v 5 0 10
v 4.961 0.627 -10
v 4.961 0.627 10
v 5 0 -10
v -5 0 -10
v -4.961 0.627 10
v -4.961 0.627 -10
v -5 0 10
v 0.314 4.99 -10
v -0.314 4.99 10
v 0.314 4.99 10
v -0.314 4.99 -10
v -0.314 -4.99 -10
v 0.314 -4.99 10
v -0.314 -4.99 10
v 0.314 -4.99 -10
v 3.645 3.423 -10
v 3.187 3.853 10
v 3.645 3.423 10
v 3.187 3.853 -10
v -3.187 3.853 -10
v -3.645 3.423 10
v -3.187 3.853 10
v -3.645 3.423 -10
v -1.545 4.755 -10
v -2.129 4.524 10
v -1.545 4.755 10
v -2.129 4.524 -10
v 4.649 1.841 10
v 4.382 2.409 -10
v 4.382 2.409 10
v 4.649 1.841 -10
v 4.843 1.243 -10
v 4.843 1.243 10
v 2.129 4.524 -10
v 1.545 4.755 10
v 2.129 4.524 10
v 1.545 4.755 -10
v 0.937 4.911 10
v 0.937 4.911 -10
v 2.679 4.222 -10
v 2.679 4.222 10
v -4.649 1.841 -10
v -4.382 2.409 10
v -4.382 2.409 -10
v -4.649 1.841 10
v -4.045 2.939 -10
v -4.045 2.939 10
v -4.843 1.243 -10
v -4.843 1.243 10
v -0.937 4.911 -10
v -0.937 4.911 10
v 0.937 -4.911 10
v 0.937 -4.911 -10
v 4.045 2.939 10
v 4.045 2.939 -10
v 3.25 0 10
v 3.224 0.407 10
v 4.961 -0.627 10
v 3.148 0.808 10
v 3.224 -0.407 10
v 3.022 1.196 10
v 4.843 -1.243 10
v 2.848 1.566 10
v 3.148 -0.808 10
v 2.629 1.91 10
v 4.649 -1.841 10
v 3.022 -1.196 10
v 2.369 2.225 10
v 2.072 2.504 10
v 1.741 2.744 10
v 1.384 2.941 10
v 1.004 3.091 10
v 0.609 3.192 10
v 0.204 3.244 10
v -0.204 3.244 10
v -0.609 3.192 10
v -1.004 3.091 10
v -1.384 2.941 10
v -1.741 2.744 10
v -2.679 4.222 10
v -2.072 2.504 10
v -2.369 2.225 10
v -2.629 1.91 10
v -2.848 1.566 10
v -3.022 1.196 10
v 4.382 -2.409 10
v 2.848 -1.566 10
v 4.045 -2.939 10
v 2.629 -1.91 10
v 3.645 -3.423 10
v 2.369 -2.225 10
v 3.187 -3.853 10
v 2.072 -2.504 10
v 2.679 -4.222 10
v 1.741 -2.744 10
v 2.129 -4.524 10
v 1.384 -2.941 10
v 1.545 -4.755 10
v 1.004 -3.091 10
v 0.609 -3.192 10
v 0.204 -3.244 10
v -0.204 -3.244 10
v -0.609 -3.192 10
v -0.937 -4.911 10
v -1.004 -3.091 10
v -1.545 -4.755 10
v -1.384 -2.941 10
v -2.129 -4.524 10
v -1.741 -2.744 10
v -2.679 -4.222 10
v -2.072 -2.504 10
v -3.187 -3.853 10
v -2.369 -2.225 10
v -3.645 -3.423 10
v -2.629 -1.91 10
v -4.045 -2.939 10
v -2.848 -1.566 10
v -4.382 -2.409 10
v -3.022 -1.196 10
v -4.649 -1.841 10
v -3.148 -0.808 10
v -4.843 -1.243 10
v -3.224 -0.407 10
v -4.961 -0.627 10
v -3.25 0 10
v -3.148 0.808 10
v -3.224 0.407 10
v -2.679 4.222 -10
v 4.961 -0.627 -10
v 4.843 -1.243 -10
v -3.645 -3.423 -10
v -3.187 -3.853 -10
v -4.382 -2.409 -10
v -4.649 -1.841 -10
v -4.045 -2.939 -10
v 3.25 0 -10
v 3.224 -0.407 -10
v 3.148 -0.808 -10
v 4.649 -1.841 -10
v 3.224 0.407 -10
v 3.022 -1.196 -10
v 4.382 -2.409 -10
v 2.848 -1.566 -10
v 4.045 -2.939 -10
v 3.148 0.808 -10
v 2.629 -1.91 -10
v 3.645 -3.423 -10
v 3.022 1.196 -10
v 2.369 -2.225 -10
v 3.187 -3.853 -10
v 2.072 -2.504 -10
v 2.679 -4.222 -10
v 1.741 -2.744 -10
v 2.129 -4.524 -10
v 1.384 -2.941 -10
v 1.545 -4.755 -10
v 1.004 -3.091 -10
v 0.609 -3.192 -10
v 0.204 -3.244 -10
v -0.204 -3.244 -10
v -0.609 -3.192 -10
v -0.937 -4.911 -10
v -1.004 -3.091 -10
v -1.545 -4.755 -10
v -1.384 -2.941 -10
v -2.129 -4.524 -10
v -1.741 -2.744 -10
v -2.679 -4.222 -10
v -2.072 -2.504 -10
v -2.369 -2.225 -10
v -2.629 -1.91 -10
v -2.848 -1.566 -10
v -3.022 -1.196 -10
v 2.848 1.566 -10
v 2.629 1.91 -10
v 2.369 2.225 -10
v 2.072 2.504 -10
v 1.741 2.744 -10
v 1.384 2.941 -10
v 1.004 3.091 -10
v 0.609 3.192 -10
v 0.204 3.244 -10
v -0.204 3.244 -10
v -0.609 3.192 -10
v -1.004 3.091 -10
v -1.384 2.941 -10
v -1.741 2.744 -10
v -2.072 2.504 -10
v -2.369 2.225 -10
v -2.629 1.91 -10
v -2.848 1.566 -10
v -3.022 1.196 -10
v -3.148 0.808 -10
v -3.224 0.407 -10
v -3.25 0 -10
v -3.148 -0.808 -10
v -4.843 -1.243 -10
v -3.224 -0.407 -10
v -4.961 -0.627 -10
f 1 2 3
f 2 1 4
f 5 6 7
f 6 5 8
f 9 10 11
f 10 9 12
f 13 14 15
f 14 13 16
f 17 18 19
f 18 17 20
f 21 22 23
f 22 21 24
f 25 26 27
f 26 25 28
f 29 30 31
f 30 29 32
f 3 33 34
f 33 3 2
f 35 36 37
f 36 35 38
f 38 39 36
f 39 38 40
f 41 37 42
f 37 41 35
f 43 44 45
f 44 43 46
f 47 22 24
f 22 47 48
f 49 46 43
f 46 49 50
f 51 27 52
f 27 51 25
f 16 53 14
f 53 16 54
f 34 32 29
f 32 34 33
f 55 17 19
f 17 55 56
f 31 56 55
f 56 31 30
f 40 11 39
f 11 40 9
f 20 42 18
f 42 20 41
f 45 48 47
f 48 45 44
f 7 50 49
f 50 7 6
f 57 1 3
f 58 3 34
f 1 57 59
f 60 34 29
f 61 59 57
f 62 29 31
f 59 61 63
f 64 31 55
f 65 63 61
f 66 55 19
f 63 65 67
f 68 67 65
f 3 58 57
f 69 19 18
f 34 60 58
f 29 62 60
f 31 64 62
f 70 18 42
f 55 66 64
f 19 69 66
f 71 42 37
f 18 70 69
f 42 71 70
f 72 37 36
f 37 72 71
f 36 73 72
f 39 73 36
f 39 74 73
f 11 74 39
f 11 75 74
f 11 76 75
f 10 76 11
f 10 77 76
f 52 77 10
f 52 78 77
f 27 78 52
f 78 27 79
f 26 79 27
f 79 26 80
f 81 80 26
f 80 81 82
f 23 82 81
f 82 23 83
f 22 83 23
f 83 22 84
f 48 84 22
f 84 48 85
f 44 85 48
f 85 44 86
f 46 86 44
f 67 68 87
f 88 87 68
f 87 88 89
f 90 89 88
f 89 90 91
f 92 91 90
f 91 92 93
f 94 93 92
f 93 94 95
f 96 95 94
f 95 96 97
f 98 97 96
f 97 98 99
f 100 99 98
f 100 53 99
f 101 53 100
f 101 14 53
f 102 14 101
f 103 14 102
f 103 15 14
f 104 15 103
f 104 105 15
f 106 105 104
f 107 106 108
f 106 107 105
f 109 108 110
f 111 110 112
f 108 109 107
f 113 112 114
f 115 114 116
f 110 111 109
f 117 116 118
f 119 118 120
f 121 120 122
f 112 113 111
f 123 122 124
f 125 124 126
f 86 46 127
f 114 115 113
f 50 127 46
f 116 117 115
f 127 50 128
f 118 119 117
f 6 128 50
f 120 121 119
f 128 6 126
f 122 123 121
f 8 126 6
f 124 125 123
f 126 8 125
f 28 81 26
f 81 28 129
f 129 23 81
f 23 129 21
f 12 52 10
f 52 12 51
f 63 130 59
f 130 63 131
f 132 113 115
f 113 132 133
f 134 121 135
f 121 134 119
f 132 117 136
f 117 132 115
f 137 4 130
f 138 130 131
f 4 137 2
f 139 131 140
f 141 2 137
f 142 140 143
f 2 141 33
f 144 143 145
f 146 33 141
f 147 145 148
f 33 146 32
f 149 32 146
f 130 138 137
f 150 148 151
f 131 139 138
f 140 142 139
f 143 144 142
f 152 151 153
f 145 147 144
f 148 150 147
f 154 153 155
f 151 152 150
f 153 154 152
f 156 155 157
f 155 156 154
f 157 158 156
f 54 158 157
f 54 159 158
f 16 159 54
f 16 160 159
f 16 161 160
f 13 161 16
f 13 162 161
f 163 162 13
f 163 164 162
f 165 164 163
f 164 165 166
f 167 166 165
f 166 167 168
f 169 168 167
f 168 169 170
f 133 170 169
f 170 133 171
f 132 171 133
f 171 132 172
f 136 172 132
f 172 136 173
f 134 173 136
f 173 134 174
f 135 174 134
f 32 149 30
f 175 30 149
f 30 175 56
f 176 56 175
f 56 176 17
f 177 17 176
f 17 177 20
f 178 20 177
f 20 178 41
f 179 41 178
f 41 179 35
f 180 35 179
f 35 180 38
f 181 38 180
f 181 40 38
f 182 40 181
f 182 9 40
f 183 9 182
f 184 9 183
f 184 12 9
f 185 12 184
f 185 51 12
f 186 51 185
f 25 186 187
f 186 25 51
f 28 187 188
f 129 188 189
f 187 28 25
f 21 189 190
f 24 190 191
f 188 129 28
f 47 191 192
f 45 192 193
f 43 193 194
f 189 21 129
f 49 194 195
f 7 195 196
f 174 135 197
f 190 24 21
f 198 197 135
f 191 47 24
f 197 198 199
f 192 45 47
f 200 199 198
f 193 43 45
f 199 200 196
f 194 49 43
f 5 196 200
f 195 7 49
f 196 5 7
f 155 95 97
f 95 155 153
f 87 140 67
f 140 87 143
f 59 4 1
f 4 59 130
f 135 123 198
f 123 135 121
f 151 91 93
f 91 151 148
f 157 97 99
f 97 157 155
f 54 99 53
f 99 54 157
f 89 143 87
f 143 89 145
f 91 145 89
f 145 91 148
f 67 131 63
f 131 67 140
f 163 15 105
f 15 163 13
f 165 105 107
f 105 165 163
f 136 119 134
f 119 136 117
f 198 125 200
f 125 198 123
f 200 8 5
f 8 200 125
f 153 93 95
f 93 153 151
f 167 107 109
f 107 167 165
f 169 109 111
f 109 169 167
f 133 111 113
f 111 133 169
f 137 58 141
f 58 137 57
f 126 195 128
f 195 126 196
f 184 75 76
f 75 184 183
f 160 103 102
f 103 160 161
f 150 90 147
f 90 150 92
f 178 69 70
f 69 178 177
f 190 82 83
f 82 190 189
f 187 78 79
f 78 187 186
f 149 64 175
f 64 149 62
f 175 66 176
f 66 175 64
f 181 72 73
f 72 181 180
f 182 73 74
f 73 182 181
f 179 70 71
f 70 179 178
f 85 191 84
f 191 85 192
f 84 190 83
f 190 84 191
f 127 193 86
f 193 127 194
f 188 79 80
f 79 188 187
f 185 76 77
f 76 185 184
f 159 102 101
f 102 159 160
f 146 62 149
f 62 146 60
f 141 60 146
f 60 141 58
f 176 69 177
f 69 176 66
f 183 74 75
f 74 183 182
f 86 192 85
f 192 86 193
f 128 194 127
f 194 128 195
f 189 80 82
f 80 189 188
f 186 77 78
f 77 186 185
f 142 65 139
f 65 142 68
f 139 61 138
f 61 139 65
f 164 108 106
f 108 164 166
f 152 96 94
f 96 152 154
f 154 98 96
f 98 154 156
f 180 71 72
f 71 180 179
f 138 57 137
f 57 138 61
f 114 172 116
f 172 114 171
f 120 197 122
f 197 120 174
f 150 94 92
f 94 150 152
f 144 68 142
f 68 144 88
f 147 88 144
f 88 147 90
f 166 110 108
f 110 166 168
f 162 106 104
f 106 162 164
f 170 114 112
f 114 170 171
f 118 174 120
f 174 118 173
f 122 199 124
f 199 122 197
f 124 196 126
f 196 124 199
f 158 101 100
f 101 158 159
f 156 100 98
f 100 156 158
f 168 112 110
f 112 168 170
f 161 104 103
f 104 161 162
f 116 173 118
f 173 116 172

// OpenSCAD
$fn = 50;


difference() {
	union() {
		translate(v = [0, 0, -10.0000000000]) {
			cylinder(h = 20, r = 5.0000000000);
		}
	}
	union() {
		translate(v = [0, 0, -100.0000000000]) {
			cylinder(h = 200, r = 3.2500000000);
		}
	}
}
